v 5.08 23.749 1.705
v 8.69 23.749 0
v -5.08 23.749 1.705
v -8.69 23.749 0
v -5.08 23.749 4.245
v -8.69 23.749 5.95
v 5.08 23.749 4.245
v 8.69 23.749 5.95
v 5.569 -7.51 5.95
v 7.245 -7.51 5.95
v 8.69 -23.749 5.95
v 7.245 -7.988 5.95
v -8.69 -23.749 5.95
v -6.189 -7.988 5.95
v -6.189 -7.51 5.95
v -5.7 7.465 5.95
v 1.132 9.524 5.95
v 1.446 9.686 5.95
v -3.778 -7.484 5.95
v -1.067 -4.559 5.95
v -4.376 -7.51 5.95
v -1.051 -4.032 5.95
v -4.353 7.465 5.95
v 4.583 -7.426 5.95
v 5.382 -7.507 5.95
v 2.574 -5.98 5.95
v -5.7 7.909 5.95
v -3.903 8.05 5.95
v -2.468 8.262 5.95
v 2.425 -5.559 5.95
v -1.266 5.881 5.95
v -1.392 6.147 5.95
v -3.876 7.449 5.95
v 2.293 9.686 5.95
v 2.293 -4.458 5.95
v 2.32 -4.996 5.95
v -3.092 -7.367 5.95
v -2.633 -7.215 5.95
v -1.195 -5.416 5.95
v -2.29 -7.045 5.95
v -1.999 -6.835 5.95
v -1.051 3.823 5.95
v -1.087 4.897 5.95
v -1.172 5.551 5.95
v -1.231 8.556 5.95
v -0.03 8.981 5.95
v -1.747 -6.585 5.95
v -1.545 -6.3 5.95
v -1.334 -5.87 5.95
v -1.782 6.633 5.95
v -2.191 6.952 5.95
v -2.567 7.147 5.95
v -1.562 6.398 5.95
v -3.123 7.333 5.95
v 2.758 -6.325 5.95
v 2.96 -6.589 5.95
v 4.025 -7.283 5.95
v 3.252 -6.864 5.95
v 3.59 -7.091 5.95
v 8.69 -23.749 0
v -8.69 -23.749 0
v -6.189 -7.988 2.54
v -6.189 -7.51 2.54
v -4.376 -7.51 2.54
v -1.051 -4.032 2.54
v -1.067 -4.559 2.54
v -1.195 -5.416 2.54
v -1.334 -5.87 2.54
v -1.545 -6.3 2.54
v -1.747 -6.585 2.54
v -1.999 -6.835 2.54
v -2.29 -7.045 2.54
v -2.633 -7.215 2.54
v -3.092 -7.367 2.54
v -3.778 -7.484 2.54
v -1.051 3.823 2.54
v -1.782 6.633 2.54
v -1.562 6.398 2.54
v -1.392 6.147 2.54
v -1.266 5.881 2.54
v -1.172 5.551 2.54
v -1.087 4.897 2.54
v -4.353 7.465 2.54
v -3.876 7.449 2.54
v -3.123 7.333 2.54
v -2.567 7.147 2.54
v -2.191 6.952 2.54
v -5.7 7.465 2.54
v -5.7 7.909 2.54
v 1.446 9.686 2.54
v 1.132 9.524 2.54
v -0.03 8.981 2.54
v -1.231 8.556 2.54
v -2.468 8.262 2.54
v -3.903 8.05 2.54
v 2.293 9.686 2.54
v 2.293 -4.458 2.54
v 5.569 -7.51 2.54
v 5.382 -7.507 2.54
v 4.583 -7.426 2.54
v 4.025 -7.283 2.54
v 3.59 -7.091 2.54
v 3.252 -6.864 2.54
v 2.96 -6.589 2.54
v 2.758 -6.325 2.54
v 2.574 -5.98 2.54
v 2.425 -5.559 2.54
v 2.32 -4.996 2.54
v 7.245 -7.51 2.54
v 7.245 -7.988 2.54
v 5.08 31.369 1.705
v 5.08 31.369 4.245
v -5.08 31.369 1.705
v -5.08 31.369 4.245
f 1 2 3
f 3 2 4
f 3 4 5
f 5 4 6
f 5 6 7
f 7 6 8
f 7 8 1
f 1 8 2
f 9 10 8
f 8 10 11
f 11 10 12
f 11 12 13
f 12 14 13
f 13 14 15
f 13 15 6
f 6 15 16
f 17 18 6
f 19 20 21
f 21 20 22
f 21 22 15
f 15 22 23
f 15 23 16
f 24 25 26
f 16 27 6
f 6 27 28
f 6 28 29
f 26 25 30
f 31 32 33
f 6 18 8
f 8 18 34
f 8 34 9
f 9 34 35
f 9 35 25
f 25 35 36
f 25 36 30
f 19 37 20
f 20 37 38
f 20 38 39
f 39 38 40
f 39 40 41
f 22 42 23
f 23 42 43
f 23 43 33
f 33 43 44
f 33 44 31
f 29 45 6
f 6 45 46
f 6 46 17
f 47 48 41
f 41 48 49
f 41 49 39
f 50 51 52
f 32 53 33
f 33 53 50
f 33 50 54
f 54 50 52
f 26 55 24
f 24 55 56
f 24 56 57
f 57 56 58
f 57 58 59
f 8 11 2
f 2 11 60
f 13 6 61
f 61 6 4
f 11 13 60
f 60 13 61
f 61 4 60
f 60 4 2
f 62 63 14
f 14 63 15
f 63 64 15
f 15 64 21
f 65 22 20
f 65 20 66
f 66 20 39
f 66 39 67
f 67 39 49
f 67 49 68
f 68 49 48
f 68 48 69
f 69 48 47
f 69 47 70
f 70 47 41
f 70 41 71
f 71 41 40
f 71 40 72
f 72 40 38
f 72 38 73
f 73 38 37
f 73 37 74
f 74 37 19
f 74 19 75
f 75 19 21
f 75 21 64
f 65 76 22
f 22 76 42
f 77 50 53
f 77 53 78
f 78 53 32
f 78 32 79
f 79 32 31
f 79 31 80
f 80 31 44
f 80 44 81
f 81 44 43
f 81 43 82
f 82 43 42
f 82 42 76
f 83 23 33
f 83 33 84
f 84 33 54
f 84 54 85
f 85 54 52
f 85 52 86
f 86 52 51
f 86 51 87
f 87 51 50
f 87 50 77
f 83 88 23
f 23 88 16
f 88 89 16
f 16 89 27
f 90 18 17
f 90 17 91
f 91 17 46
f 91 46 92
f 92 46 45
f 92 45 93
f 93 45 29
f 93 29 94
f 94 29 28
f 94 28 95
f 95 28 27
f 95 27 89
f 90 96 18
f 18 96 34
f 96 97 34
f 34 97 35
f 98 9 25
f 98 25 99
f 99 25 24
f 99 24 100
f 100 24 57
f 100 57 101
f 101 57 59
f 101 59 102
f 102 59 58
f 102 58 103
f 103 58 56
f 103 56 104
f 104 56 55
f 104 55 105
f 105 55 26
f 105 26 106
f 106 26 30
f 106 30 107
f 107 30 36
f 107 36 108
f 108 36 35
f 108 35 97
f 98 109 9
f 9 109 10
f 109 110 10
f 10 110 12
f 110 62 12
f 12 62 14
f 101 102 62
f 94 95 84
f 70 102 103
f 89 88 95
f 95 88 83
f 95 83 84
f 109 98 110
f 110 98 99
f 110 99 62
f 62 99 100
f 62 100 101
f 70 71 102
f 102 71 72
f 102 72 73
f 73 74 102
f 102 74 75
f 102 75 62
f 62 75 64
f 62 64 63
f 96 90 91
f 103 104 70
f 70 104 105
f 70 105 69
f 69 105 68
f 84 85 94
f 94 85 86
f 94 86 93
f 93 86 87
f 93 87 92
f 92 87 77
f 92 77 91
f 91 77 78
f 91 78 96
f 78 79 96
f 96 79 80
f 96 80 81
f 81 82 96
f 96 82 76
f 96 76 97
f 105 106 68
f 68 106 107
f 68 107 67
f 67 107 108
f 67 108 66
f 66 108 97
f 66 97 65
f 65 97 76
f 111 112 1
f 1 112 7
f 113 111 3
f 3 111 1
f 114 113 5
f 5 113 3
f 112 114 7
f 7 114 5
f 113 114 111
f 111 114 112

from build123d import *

# Parameters (mm, degrees)
SKETCH1_W           = 17.38
SKETCH1_H           = 47.498
BOSS_EXTRUDE1_DEPTH = 5.95
CUT_EXTRUDE1_DEPTH  = 3.41
SKETCH3_W           = 10.16
SKETCH3_H           = 2.54
BOSS_EXTRUDE2_DEPTH = 7.62


with BuildPart() as part:
    # Sketch1 → Boss-Extrude1 (new body)
    with BuildSketch(Plane.XY):
        Rectangle(SKETCH1_W, SKETCH1_H)
    extrude(amount=BOSS_EXTRUDE1_DEPTH)

    # Sketch2 → Cut-Extrude1 (cut)
    with BuildSketch(Plane.XY.offset(5.95)):
        with BuildLine():
            Line((-6.189150765, -7.510055771), (-4.375543678, -7.510055771))
            add(Edge.make_bspline(
                [(-4.375543678, -7.510055771), (-4.236100034, -7.508741028), (-3.965259686, -7.506187413), (-3.575157739, -7.462880983), (-3.212929647, -7.401011341), (-2.879952148, -7.312618696), (-2.576880198, -7.195940416), (-2.299787614, -7.059475133), (-2.057227298, -6.889398664), (-1.839886176, -6.696896273), (-1.6506173, -6.473748397), (-1.49147229, -6.216884478), (-1.351582714, -5.931396028), (-1.240365711, -5.611742151), (-1.156767721, -5.260026908), (-1.093019054, -4.878648158), (-1.055622823, -4.465737579), (-1.052313767, -4.18021236), (-1.050597351, -4.03210967)],
                knots=[0, 0, 0, 0, 1.200271823, 2.331279013, 3.375715191, 4.363218718, 5.292340221, 6.169095557, 7.016022317, 7.835399336, 8.663899785, 9.525803296, 10.431341886, 11.396986964, 12.433702812, 13.541488193, 14.724763392, 16, 16, 16, 16], degree=3))
            Line((-1.050597351, -4.03210967), (-1.050597351, 3.823122672))
            add(Edge.make_bspline(
                [(-1.050597351, 3.823122672), (-1.050990706, 4.018476815), (-1.051722861, 4.38209167), (-1.082819341, 4.883729691), (-1.123621868, 5.300544302), (-1.186312233, 5.642512462), (-1.277849339, 5.934194205), (-1.409859259, 6.190898998), (-1.576026296, 6.428387627), (-1.712615445, 6.564129267), (-1.782010909, 6.633094146)],
                knots=[0, 0, 0, 0, 1.563811524, 2.910739897, 4.022716534, 4.915381324, 5.690198038, 6.460778295, 7.217983238, 8, 8, 8, 8], degree=3))
            add(Edge.make_bspline(
                [(-1.782010909, 6.633094146), (-1.857869082, 6.699334544), (-2.010689546, 6.832779473), (-2.266570655, 7.006932331), (-2.552722511, 7.147733735), (-2.863765744, 7.261431627), (-3.198352588, 7.358338614), (-3.560509802, 7.416582757), (-3.947751905, 7.461850273), (-4.214926271, 7.464099814), (-4.353153467, 7.465263653)],
                knots=[0, 0, 0, 0, 0.872288361, 1.757272915, 2.673228345, 3.628310148, 4.624832827, 5.686398416, 6.803018934, 8, 8, 8, 8], degree=3))
            Line((-4.353153467, 7.465263653), (-5.700297825, 7.465263653))
            Line((-5.700297825, 7.465263653), (-5.700297825, 7.90933617))
            add(Edge.make_bspline(
                [(-5.700297825, 7.90933617), (-5.451430477, 7.922958599), (-4.966965958, 7.949477079), (-4.25899913, 8.010023738), (-3.589407964, 8.083563347), (-2.954434187, 8.172799954), (-2.352988403, 8.280285748), (-1.78214455, 8.408269267), (-1.238010952, 8.547978741), (-0.715430392, 8.715533332), (-0.195727602, 8.910375221), (0.33741676, 9.132306906), (0.886154119, 9.39705879), (1.256038344, 9.587742493), (1.44591117, 9.685626239)],
                knots=[0, 0, 0, 0, 1.206551741, 2.348767378, 3.4393851, 4.467302093, 5.452435193, 6.396265705, 7.29893257, 8.171177332, 9.051491902, 9.98535699, 10.965822455, 12, 12, 12, 12], degree=3))
            Line((1.44591117, 9.685626239), (2.293007484, 9.685626239))
            Line((2.293007484, 9.685626239), (2.293007484, -4.457523678))
            add(Edge.make_bspline(
                [(2.293007484, -4.457523678), (2.294317311, -4.580815267), (2.296865591, -4.820680062), (2.340584624, -5.167266406), (2.402324898, -5.491083353), (2.490852806, -5.790612798), (2.608465987, -6.064671603), (2.745851868, -6.318652921), (2.914467795, -6.54690087), (3.110897203, -6.749009464), (3.329168057, -6.930218955), (3.572808862, -7.08810542), (3.844565821, -7.217801947), (4.140194362, -7.32714774), (4.462230563, -7.407047666), (4.808870425, -7.466843235), (5.180494619, -7.504994367), (5.437493331, -7.508338715), (5.569441686, -7.510055771)],
                knots=[0, 0, 0, 0, 1.151629664, 2.240504938, 3.259800832, 4.230940235, 5.153094675, 6.043018888, 6.924394745, 7.796053501, 8.671426729, 9.571246426, 10.502083077, 11.480572872, 12.512719618, 13.598486478, 14.767014217, 16, 16, 16, 16], degree=3))
            Line((5.569441686, -7.510055771), (7.244975806, -7.510055771))
            Line((7.244975806, -7.510055771), (7.244975806, -7.987713605))
            Line((7.244975806, -7.987713605), (-6.189150765, -7.987713605))
            Line((-6.189150765, -7.987713605), (-6.189150765, -7.510055771))
        make_face()
    extrude(amount=-CUT_EXTRUDE1_DEPTH, mode=Mode.SUBTRACT)

    # Sketch3 → Boss-Extrude2 (add)
    with BuildSketch(Plane(origin=(0, 23.749, 0), x_dir=(1, 0, 0), z_dir=(0, 1, 0))):
        with Locations((0, -2.975)):
            Rectangle(SKETCH3_W, SKETCH3_H)
    extrude(amount=BOSS_EXTRUDE2_DEPTH)


solid = part.part
